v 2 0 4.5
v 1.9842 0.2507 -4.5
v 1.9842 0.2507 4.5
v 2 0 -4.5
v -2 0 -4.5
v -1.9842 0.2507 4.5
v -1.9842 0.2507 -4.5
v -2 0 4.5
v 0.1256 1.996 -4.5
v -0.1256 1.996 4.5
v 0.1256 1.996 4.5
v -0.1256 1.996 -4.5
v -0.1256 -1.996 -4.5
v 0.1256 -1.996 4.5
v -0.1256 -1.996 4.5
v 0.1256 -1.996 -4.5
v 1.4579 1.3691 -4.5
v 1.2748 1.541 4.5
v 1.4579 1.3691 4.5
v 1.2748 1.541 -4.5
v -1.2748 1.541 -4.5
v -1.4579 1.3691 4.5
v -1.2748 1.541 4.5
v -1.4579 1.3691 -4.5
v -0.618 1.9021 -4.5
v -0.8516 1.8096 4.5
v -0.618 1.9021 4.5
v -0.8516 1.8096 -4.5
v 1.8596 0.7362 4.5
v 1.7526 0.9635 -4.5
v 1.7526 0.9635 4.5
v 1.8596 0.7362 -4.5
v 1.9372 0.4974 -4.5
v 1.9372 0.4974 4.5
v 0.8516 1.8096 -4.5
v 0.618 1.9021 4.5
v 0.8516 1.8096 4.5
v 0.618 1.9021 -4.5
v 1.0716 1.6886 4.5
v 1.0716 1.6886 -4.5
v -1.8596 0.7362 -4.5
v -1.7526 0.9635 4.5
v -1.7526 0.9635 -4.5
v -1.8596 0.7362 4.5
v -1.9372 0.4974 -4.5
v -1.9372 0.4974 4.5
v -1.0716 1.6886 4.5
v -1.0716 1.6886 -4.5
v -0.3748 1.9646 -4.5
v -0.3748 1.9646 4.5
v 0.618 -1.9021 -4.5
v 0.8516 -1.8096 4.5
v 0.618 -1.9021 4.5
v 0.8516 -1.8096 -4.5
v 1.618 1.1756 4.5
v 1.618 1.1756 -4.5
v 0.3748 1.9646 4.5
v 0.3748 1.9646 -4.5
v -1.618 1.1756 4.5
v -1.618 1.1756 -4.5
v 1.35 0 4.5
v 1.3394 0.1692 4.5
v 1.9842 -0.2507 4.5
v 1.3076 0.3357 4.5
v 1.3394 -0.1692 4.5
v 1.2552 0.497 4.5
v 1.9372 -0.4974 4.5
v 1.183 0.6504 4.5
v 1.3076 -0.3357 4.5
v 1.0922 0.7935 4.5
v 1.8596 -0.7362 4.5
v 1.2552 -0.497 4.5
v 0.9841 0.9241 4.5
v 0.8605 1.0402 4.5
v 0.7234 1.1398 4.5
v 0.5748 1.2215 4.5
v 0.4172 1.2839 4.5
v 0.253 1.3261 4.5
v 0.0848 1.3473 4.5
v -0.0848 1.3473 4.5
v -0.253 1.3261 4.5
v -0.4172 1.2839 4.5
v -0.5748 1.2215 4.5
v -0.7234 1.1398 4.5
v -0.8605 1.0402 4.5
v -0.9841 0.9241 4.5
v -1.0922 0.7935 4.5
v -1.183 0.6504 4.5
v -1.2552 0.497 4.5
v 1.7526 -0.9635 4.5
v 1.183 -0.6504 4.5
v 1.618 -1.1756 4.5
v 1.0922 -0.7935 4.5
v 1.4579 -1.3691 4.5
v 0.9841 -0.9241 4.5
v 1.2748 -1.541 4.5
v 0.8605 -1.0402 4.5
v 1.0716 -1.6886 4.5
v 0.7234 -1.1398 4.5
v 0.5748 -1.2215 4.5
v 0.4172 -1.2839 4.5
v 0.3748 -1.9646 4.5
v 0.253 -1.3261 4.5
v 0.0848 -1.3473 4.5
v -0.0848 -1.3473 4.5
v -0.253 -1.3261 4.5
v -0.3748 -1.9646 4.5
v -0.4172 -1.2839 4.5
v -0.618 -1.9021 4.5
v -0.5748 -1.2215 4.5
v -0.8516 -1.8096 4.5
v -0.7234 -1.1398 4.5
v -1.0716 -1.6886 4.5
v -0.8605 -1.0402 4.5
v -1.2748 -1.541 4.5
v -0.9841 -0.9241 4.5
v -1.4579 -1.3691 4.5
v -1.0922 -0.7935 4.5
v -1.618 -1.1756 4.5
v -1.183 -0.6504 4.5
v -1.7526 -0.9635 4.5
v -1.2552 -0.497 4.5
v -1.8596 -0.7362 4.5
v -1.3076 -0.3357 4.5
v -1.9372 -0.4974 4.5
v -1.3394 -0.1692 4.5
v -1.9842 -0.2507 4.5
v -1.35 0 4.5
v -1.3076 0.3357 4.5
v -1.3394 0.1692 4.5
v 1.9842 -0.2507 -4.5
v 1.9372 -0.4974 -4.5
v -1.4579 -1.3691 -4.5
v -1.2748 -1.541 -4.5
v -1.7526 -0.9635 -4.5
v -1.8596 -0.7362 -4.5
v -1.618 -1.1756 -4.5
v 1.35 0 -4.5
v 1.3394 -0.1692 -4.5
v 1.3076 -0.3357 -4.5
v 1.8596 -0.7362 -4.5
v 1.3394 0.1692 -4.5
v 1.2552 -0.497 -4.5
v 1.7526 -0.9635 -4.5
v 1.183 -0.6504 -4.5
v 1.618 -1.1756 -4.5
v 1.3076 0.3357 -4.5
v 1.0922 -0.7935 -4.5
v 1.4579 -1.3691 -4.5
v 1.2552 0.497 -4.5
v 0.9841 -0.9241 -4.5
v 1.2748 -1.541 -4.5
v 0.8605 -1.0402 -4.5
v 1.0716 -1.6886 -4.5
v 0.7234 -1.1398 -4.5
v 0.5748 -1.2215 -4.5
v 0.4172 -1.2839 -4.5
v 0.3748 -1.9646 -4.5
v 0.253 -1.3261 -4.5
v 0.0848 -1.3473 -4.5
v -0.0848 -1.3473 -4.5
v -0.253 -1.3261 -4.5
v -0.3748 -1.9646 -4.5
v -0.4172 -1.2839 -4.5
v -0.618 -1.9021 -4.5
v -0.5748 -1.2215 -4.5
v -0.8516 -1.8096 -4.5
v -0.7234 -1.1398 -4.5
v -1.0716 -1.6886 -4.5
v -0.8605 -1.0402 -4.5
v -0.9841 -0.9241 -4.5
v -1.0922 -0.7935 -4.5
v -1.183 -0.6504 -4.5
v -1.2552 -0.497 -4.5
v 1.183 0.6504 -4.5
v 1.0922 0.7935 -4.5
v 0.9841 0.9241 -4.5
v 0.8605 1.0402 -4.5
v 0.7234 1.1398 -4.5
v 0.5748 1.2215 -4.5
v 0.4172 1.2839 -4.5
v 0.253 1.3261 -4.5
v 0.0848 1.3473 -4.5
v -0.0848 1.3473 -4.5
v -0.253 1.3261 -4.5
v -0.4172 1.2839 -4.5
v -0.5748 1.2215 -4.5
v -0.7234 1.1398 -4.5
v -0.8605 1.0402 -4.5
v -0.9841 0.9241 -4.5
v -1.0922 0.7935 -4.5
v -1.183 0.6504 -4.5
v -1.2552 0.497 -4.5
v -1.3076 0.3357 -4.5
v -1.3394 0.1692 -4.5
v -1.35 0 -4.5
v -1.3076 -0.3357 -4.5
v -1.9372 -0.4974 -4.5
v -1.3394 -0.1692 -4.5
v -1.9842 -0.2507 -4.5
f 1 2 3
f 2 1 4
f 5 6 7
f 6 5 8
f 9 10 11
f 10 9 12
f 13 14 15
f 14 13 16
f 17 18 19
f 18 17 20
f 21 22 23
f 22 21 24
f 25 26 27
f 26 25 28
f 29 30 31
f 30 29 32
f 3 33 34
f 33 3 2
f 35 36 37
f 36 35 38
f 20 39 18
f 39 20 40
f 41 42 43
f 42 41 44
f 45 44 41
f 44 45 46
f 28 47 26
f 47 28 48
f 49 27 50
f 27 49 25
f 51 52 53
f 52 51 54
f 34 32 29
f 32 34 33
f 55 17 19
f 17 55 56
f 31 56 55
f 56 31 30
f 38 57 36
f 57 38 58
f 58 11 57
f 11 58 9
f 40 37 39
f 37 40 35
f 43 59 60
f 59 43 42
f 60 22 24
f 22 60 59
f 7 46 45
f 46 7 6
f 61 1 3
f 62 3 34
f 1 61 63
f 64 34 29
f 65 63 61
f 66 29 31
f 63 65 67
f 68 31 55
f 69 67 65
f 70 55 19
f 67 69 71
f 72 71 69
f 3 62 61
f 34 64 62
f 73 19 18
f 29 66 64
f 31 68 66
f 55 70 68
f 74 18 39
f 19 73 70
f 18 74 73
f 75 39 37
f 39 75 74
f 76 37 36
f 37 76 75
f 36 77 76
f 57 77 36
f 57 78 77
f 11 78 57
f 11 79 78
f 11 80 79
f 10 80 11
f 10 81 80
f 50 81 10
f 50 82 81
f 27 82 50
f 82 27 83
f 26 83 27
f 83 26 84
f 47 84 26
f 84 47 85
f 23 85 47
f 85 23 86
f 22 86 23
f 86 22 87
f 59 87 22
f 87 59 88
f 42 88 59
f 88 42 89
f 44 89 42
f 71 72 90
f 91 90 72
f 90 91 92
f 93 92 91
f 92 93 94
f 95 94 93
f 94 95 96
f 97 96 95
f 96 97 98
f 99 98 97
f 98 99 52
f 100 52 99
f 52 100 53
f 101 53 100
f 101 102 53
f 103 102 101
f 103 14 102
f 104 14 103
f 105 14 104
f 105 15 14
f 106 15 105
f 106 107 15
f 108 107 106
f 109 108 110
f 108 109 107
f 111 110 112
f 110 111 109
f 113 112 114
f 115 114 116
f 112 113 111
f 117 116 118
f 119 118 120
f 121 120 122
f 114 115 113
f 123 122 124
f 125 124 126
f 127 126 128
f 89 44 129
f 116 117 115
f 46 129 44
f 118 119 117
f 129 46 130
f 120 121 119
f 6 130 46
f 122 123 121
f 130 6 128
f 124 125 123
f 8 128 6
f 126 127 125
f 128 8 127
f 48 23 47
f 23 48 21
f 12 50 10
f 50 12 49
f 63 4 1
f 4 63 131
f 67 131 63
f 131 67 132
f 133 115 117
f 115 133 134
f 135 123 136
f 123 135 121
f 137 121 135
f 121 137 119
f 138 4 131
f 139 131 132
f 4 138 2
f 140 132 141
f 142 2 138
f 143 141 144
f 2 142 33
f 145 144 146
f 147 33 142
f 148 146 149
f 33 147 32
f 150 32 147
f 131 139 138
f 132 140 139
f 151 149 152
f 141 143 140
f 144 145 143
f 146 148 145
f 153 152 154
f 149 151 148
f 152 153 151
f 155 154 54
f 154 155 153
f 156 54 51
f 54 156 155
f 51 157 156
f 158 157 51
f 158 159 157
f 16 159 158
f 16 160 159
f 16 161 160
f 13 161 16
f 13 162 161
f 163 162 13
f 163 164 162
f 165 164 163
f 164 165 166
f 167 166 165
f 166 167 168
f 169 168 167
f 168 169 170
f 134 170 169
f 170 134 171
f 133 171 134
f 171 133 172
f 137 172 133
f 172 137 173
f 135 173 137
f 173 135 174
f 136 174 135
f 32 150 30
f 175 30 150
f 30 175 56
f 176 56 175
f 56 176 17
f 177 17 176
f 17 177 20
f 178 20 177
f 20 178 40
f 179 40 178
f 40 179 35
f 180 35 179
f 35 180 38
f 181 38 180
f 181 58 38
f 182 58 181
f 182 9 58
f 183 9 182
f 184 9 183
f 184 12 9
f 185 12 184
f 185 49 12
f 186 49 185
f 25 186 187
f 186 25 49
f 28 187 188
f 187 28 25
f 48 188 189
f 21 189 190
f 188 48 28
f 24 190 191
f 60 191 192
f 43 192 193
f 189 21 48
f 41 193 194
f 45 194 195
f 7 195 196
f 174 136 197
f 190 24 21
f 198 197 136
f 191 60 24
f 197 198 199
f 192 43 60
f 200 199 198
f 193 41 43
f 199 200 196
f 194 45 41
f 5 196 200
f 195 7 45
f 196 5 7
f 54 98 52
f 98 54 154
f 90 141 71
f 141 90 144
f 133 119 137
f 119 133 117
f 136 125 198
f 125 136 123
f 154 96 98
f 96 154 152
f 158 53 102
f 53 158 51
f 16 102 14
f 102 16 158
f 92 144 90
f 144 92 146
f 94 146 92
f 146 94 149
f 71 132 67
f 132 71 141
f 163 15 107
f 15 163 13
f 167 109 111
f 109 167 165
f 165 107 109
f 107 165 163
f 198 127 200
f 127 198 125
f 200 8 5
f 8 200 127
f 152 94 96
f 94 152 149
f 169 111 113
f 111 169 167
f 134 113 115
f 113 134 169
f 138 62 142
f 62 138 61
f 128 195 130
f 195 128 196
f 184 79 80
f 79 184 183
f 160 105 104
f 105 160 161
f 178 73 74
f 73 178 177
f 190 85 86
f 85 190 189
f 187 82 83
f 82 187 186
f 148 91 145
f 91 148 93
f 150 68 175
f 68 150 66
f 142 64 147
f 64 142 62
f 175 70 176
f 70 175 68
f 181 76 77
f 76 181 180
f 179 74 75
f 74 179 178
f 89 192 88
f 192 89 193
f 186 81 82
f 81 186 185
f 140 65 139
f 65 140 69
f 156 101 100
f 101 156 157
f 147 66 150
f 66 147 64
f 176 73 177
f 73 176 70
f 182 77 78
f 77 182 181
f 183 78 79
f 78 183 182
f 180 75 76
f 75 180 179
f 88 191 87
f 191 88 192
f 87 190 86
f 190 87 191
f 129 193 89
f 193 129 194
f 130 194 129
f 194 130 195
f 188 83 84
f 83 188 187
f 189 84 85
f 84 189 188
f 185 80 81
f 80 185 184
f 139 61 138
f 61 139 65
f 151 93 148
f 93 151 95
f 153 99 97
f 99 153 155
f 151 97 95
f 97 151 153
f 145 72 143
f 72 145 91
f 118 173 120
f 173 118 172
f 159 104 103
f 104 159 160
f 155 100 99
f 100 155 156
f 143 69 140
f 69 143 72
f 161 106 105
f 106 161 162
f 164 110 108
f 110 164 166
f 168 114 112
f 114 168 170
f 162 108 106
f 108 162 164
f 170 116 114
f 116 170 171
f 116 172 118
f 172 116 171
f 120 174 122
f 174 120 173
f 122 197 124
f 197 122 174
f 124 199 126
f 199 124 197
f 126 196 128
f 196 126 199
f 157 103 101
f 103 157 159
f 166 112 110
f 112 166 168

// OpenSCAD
$fn = 50;


difference() {
	union() {
		translate(v = [0, 0, -4.5000000000]) {
			cylinder(h = 9, r = 2.0000000000);
		}
	}
	union() {
		translate(v = [0, 0, -100.0000000000]) {
			cylinder(h = 200, r = 1.3500000000);
		}
	}
}
